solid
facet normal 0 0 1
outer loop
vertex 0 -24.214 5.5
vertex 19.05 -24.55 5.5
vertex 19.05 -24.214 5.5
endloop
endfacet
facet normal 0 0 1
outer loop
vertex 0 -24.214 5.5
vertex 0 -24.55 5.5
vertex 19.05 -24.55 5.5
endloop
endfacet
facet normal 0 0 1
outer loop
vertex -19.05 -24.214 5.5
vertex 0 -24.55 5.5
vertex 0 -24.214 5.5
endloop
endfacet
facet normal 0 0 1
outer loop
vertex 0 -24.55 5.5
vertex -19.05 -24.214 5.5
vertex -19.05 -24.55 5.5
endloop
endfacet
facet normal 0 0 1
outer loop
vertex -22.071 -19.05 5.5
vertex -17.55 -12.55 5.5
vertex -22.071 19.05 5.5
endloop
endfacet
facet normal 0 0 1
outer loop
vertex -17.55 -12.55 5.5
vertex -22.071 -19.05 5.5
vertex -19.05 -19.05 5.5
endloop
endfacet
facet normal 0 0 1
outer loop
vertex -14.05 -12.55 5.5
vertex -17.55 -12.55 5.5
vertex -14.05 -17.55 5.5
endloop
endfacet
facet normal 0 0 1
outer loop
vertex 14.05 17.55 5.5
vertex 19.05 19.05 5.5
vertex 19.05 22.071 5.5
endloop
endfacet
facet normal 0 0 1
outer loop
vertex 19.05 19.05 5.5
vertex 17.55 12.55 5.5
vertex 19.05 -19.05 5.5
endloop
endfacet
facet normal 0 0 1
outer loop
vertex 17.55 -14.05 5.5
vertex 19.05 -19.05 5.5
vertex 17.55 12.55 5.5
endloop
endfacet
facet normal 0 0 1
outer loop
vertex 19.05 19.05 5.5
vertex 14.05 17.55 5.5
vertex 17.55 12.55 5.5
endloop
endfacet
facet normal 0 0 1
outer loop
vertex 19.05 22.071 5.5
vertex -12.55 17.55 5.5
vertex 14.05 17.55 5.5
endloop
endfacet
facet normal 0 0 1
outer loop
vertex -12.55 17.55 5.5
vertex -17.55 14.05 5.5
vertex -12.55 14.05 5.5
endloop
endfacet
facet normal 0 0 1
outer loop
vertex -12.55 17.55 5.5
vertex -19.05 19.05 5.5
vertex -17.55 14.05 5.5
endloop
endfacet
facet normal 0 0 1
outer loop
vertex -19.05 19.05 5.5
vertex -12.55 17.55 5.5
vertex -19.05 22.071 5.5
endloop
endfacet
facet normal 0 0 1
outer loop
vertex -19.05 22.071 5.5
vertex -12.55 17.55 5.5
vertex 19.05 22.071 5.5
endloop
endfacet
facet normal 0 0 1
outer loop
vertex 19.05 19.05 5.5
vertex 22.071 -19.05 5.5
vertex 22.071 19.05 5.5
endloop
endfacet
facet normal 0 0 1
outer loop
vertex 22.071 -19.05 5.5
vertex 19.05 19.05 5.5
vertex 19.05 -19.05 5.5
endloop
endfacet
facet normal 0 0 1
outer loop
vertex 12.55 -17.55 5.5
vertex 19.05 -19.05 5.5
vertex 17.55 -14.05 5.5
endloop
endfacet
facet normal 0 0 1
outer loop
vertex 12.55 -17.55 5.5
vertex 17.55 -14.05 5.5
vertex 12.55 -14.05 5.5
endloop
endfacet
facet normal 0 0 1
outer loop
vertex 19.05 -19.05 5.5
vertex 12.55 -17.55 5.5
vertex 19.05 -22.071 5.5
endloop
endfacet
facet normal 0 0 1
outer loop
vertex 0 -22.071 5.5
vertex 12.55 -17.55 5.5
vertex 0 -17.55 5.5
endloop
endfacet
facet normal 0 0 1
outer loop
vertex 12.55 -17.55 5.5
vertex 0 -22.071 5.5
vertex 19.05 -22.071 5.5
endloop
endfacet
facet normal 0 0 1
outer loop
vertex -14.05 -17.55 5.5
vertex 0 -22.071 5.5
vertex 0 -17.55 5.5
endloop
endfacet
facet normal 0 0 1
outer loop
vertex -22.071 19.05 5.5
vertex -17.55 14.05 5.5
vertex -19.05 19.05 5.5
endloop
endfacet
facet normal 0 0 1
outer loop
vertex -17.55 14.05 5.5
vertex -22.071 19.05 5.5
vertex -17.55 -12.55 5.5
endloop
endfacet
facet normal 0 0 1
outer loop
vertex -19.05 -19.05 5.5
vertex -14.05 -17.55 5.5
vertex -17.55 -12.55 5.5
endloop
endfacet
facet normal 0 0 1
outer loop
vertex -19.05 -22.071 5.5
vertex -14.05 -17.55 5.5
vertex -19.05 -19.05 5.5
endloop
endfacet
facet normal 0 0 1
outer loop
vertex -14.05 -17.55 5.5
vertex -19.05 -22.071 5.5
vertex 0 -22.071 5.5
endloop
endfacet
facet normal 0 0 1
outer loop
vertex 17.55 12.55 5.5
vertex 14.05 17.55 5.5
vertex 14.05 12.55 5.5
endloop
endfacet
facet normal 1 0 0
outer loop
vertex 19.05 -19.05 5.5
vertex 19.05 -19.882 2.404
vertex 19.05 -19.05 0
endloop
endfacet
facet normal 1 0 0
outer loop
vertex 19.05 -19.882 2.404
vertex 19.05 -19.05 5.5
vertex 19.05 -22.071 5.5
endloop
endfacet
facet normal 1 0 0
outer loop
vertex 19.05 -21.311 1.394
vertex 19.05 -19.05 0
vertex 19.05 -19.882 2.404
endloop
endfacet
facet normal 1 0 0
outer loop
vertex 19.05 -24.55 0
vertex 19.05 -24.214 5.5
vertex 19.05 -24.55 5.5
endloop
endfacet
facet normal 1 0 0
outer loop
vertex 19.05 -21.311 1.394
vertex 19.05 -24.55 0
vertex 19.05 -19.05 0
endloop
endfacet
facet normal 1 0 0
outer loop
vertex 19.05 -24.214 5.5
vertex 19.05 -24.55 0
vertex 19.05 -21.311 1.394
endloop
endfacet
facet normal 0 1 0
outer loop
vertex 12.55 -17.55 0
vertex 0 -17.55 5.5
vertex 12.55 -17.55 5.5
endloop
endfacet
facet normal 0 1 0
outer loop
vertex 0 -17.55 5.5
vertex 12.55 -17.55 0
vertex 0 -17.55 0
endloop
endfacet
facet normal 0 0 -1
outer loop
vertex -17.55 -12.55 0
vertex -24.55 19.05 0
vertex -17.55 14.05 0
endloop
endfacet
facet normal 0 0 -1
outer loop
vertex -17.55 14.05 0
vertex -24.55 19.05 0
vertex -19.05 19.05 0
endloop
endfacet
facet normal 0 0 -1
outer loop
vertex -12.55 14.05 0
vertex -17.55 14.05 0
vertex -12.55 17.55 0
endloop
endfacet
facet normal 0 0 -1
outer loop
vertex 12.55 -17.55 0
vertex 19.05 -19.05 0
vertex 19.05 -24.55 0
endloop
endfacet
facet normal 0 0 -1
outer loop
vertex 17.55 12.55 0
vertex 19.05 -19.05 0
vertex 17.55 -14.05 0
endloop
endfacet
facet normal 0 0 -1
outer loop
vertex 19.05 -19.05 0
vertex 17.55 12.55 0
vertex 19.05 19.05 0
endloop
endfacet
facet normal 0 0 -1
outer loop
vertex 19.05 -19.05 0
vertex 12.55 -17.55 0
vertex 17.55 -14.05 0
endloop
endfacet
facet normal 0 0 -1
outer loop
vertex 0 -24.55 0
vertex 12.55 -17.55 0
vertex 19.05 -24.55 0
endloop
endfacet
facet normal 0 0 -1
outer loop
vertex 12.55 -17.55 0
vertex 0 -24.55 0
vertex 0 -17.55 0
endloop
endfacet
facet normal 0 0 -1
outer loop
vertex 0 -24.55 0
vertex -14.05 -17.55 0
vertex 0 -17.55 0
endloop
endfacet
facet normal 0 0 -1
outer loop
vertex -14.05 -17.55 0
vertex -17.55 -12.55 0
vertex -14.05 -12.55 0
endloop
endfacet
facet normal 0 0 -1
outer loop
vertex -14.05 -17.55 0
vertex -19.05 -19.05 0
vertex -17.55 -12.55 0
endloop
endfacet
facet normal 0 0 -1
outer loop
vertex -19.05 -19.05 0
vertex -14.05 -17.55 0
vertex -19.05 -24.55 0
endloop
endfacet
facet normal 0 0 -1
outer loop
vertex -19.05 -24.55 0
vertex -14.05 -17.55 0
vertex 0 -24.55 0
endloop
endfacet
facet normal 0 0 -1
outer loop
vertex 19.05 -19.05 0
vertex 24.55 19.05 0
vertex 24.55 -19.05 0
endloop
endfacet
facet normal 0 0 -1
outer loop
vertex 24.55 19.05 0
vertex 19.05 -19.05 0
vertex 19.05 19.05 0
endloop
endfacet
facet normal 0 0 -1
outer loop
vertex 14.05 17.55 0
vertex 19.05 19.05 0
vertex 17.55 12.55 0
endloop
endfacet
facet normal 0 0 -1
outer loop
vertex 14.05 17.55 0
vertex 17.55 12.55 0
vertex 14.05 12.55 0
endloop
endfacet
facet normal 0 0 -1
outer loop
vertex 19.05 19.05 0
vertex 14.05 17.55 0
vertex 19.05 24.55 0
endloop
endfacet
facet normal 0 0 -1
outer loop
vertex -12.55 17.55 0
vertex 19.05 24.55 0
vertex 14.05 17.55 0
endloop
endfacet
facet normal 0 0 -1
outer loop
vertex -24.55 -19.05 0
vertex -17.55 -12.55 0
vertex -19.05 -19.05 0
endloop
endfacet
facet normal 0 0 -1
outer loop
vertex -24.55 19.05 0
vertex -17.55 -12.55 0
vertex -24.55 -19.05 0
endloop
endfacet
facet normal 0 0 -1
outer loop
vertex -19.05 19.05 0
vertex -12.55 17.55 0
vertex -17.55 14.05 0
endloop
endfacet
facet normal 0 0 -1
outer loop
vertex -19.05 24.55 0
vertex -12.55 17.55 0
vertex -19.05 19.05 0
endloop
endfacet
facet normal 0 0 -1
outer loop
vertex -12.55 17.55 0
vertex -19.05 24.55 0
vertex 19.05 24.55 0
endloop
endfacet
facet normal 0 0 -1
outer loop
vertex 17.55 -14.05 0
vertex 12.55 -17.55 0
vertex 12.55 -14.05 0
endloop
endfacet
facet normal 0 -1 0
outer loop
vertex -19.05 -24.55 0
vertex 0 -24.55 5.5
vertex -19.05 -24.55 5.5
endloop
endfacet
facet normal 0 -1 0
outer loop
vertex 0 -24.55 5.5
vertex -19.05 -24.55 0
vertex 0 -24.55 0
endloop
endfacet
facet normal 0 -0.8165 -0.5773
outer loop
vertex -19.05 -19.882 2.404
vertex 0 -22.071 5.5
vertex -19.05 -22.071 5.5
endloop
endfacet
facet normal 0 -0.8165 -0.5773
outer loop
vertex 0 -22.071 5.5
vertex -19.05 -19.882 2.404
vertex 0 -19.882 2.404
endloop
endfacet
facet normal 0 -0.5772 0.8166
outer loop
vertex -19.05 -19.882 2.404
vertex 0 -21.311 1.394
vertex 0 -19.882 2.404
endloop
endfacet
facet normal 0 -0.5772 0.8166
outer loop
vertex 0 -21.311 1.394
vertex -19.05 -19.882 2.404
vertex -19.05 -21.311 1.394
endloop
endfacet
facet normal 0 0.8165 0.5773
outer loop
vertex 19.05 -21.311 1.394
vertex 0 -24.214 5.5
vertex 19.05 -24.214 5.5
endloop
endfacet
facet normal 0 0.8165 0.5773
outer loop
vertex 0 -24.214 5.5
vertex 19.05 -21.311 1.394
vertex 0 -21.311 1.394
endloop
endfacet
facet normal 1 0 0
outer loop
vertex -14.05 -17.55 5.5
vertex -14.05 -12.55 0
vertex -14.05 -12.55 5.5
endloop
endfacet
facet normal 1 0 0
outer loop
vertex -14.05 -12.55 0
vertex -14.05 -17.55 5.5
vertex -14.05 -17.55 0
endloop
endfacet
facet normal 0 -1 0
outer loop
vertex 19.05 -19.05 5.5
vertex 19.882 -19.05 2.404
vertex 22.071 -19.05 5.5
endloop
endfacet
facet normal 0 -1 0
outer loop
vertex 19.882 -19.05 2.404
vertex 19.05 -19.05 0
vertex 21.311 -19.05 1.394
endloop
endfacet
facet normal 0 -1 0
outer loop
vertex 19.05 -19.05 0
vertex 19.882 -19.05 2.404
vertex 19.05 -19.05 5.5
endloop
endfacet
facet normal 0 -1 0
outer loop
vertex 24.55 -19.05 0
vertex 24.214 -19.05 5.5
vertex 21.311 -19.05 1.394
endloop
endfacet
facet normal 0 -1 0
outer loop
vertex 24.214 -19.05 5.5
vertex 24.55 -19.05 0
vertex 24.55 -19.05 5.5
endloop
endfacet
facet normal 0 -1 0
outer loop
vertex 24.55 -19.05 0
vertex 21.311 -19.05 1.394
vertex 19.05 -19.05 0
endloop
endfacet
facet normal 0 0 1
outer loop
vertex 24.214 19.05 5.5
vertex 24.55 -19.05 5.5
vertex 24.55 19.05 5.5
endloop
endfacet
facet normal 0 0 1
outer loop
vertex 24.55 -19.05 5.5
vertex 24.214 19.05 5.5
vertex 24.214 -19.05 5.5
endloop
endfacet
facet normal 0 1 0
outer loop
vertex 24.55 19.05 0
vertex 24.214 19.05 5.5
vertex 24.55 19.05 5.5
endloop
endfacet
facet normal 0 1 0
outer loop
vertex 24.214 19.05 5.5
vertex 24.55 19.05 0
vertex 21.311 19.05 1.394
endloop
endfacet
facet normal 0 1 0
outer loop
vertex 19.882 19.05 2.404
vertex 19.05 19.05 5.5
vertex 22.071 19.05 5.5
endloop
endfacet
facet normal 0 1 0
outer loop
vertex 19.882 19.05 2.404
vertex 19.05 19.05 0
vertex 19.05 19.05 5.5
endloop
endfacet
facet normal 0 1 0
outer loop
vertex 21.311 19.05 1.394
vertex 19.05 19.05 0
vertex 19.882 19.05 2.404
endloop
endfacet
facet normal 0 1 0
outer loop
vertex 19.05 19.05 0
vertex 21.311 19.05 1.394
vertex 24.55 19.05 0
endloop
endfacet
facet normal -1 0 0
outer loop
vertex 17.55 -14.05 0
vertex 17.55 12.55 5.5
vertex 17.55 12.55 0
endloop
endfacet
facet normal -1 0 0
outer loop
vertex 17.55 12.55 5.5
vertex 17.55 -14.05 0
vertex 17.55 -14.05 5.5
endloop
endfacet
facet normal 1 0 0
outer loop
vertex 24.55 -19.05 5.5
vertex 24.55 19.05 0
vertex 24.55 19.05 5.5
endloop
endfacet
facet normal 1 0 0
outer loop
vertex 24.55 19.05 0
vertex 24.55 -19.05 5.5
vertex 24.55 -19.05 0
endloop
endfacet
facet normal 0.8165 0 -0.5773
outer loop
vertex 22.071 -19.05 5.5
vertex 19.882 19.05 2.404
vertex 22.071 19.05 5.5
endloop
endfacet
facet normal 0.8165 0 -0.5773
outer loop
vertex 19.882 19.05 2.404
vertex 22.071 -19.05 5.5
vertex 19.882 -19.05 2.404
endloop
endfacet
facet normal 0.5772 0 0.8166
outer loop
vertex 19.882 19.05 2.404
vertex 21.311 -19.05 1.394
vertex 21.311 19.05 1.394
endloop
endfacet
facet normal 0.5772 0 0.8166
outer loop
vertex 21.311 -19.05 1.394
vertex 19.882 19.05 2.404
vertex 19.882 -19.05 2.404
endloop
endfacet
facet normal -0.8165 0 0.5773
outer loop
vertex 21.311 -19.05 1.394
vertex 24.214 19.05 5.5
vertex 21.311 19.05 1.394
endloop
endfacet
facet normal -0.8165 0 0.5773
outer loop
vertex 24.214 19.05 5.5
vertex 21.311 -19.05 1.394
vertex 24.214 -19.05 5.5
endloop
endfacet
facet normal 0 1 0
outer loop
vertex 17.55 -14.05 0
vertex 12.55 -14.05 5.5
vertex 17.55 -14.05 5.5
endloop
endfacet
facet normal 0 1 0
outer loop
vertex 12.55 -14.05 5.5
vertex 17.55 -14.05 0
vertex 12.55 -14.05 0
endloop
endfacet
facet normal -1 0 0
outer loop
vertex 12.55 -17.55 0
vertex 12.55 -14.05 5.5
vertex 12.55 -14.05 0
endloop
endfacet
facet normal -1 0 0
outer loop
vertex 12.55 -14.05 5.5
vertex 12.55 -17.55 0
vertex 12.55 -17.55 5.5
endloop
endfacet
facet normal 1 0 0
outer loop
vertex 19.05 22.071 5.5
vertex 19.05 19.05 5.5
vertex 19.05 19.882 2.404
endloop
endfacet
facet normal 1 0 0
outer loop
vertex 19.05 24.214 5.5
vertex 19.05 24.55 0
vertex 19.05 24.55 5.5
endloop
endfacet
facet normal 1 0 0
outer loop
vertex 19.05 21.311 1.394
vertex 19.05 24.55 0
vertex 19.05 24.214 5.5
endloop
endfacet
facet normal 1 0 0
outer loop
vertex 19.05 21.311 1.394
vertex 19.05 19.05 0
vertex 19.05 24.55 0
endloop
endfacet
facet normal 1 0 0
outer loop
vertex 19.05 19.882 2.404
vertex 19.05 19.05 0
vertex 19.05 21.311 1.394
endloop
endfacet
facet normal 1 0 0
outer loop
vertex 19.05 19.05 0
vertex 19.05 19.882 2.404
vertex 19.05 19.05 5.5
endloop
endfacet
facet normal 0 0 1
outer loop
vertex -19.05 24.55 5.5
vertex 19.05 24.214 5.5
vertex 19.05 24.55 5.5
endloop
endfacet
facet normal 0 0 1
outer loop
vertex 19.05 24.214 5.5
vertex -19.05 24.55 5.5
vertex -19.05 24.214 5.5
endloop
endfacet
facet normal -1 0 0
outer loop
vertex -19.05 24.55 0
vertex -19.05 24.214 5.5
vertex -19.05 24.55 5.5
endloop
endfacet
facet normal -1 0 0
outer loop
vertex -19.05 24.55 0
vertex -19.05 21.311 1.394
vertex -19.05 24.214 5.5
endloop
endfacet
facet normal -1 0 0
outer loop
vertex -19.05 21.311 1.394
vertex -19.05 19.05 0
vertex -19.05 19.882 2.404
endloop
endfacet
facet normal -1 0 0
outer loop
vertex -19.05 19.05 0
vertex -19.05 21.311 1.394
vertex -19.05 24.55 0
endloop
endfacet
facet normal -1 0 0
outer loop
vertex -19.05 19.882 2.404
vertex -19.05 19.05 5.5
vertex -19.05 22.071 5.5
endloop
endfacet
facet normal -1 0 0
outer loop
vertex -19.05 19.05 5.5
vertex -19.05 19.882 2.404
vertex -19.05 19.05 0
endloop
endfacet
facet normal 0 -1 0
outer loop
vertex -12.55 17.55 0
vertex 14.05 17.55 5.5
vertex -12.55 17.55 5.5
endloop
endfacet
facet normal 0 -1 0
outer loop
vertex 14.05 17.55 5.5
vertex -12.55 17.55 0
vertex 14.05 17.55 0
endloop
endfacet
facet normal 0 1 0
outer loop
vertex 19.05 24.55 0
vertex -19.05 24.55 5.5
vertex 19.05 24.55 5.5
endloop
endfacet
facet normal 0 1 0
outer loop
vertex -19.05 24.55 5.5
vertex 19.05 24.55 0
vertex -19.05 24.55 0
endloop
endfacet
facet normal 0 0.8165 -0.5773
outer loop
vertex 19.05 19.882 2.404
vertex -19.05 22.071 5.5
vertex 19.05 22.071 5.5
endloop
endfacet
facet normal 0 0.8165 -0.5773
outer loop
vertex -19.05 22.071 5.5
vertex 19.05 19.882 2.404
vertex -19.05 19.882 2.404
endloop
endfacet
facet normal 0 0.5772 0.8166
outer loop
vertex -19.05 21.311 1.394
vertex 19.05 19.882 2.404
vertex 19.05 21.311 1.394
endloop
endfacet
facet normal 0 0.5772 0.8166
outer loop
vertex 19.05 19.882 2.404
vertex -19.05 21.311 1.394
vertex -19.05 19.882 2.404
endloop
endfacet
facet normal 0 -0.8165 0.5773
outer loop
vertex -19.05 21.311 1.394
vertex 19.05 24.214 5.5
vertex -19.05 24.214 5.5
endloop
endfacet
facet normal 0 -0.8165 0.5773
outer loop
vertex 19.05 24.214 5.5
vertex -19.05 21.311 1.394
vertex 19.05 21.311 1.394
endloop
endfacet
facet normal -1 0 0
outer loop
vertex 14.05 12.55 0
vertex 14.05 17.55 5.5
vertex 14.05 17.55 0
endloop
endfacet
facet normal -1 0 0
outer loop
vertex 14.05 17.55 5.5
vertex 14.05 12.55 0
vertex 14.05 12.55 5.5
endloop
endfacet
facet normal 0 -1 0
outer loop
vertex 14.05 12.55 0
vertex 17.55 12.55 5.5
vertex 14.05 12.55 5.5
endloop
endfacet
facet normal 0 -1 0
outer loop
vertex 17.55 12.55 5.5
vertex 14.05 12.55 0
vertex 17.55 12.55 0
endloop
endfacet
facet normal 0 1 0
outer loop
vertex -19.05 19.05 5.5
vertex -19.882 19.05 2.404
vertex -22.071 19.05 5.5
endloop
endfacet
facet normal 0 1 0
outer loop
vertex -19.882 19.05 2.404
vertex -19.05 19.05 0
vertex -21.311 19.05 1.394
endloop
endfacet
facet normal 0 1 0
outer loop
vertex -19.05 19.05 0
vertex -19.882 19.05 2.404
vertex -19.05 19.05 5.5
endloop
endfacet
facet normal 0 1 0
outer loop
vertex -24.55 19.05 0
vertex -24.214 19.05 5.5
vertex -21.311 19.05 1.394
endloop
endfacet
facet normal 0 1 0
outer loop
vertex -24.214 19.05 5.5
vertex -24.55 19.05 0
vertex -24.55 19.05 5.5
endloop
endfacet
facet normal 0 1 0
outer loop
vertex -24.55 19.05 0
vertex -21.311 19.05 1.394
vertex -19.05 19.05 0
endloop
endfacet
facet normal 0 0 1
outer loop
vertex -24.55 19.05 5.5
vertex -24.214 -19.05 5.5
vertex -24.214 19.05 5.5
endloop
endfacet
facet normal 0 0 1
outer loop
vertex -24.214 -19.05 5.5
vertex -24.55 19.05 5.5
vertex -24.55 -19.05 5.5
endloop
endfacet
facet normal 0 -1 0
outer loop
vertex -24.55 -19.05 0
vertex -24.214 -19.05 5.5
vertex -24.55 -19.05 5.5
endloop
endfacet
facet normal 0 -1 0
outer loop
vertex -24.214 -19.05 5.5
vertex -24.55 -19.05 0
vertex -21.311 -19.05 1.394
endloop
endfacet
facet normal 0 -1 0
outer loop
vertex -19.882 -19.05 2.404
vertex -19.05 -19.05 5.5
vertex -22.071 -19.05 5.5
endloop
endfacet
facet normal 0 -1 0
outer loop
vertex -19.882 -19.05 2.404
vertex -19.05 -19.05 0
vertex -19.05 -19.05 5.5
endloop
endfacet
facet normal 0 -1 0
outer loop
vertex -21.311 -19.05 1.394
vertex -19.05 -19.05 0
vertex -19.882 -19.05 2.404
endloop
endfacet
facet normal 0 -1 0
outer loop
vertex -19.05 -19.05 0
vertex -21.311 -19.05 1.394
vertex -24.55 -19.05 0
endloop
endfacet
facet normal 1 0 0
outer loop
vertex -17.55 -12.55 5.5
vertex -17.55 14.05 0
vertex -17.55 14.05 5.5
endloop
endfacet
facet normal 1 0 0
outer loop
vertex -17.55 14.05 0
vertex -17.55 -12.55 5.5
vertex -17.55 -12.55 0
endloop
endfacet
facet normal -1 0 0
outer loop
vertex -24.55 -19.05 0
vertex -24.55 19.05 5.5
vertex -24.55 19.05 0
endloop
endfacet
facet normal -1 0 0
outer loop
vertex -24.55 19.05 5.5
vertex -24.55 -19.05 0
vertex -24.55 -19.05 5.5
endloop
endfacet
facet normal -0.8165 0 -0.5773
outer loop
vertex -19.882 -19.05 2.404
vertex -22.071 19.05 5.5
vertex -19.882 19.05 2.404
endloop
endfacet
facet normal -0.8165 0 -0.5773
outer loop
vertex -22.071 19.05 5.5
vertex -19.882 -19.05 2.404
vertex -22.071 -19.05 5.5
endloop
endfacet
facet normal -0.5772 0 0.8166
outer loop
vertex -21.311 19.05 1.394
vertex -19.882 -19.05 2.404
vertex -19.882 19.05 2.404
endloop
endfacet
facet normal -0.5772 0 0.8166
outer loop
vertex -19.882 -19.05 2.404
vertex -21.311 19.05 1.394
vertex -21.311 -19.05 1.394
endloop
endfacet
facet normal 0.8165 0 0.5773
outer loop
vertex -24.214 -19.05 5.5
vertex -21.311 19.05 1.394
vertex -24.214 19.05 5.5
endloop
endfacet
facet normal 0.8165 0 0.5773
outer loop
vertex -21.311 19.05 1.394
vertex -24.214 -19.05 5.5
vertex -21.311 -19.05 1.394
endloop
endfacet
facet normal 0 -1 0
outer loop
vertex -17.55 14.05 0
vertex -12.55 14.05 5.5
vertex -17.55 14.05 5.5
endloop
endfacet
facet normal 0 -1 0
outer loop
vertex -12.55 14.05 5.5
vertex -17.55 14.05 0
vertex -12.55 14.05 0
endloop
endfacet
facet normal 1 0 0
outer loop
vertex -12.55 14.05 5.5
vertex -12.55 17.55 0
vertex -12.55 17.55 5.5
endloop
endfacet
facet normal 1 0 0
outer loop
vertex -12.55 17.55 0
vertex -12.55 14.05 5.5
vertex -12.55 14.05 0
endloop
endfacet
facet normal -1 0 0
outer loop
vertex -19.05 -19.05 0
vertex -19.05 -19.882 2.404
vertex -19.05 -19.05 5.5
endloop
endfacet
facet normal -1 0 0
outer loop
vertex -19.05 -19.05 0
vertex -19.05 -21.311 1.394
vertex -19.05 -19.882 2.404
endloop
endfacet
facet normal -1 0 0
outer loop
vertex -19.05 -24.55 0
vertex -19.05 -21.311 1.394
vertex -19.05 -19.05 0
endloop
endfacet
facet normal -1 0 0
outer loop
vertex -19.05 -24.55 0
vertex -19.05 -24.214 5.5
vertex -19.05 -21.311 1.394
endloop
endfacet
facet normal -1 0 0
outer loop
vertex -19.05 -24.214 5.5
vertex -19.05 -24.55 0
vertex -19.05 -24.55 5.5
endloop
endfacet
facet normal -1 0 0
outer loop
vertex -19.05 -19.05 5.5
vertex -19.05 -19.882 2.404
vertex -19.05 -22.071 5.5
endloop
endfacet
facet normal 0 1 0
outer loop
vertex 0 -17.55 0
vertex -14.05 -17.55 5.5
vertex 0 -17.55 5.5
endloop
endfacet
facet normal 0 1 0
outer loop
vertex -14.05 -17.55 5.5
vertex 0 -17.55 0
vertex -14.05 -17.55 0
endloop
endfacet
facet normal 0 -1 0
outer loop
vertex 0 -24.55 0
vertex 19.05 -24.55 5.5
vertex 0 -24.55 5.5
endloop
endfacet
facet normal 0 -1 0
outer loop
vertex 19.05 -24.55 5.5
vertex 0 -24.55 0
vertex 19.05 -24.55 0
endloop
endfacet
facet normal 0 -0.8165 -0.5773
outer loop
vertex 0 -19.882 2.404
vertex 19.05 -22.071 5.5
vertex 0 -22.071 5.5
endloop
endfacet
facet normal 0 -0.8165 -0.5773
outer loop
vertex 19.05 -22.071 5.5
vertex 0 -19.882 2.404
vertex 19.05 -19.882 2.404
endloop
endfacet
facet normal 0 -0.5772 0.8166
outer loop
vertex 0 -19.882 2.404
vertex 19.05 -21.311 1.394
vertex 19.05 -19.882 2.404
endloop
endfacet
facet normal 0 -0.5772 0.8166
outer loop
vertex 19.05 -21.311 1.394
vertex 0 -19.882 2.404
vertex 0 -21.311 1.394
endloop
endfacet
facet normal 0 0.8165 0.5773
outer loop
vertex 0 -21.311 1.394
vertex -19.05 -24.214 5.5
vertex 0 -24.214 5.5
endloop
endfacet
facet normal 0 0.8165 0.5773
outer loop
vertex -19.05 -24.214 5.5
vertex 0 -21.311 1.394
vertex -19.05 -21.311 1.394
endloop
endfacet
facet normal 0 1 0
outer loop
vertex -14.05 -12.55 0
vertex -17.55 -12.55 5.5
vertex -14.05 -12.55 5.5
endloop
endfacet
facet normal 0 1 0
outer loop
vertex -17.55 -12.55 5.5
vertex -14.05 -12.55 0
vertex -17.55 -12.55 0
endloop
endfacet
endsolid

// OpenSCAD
// William A Stevens V
// Reflective prism base clip for 1/16 inch lexan with a 1.5 inch bottom side length.
s=1.5*25.4;
for(i = [0:4]) {
    rotate([0,0,90*i]) translate([-(s/2),-(s/2)-2.5,0]) union (){
        translate([0,3,0]) cube([5,6,5.5]);
        difference() {
            translate([0,-3,0]) cube([s,7,5.5]);
            rotate([90-54.735,0,0]) translate([0,1,1]) cube([s,1.75,6]);
        }
    }
}
